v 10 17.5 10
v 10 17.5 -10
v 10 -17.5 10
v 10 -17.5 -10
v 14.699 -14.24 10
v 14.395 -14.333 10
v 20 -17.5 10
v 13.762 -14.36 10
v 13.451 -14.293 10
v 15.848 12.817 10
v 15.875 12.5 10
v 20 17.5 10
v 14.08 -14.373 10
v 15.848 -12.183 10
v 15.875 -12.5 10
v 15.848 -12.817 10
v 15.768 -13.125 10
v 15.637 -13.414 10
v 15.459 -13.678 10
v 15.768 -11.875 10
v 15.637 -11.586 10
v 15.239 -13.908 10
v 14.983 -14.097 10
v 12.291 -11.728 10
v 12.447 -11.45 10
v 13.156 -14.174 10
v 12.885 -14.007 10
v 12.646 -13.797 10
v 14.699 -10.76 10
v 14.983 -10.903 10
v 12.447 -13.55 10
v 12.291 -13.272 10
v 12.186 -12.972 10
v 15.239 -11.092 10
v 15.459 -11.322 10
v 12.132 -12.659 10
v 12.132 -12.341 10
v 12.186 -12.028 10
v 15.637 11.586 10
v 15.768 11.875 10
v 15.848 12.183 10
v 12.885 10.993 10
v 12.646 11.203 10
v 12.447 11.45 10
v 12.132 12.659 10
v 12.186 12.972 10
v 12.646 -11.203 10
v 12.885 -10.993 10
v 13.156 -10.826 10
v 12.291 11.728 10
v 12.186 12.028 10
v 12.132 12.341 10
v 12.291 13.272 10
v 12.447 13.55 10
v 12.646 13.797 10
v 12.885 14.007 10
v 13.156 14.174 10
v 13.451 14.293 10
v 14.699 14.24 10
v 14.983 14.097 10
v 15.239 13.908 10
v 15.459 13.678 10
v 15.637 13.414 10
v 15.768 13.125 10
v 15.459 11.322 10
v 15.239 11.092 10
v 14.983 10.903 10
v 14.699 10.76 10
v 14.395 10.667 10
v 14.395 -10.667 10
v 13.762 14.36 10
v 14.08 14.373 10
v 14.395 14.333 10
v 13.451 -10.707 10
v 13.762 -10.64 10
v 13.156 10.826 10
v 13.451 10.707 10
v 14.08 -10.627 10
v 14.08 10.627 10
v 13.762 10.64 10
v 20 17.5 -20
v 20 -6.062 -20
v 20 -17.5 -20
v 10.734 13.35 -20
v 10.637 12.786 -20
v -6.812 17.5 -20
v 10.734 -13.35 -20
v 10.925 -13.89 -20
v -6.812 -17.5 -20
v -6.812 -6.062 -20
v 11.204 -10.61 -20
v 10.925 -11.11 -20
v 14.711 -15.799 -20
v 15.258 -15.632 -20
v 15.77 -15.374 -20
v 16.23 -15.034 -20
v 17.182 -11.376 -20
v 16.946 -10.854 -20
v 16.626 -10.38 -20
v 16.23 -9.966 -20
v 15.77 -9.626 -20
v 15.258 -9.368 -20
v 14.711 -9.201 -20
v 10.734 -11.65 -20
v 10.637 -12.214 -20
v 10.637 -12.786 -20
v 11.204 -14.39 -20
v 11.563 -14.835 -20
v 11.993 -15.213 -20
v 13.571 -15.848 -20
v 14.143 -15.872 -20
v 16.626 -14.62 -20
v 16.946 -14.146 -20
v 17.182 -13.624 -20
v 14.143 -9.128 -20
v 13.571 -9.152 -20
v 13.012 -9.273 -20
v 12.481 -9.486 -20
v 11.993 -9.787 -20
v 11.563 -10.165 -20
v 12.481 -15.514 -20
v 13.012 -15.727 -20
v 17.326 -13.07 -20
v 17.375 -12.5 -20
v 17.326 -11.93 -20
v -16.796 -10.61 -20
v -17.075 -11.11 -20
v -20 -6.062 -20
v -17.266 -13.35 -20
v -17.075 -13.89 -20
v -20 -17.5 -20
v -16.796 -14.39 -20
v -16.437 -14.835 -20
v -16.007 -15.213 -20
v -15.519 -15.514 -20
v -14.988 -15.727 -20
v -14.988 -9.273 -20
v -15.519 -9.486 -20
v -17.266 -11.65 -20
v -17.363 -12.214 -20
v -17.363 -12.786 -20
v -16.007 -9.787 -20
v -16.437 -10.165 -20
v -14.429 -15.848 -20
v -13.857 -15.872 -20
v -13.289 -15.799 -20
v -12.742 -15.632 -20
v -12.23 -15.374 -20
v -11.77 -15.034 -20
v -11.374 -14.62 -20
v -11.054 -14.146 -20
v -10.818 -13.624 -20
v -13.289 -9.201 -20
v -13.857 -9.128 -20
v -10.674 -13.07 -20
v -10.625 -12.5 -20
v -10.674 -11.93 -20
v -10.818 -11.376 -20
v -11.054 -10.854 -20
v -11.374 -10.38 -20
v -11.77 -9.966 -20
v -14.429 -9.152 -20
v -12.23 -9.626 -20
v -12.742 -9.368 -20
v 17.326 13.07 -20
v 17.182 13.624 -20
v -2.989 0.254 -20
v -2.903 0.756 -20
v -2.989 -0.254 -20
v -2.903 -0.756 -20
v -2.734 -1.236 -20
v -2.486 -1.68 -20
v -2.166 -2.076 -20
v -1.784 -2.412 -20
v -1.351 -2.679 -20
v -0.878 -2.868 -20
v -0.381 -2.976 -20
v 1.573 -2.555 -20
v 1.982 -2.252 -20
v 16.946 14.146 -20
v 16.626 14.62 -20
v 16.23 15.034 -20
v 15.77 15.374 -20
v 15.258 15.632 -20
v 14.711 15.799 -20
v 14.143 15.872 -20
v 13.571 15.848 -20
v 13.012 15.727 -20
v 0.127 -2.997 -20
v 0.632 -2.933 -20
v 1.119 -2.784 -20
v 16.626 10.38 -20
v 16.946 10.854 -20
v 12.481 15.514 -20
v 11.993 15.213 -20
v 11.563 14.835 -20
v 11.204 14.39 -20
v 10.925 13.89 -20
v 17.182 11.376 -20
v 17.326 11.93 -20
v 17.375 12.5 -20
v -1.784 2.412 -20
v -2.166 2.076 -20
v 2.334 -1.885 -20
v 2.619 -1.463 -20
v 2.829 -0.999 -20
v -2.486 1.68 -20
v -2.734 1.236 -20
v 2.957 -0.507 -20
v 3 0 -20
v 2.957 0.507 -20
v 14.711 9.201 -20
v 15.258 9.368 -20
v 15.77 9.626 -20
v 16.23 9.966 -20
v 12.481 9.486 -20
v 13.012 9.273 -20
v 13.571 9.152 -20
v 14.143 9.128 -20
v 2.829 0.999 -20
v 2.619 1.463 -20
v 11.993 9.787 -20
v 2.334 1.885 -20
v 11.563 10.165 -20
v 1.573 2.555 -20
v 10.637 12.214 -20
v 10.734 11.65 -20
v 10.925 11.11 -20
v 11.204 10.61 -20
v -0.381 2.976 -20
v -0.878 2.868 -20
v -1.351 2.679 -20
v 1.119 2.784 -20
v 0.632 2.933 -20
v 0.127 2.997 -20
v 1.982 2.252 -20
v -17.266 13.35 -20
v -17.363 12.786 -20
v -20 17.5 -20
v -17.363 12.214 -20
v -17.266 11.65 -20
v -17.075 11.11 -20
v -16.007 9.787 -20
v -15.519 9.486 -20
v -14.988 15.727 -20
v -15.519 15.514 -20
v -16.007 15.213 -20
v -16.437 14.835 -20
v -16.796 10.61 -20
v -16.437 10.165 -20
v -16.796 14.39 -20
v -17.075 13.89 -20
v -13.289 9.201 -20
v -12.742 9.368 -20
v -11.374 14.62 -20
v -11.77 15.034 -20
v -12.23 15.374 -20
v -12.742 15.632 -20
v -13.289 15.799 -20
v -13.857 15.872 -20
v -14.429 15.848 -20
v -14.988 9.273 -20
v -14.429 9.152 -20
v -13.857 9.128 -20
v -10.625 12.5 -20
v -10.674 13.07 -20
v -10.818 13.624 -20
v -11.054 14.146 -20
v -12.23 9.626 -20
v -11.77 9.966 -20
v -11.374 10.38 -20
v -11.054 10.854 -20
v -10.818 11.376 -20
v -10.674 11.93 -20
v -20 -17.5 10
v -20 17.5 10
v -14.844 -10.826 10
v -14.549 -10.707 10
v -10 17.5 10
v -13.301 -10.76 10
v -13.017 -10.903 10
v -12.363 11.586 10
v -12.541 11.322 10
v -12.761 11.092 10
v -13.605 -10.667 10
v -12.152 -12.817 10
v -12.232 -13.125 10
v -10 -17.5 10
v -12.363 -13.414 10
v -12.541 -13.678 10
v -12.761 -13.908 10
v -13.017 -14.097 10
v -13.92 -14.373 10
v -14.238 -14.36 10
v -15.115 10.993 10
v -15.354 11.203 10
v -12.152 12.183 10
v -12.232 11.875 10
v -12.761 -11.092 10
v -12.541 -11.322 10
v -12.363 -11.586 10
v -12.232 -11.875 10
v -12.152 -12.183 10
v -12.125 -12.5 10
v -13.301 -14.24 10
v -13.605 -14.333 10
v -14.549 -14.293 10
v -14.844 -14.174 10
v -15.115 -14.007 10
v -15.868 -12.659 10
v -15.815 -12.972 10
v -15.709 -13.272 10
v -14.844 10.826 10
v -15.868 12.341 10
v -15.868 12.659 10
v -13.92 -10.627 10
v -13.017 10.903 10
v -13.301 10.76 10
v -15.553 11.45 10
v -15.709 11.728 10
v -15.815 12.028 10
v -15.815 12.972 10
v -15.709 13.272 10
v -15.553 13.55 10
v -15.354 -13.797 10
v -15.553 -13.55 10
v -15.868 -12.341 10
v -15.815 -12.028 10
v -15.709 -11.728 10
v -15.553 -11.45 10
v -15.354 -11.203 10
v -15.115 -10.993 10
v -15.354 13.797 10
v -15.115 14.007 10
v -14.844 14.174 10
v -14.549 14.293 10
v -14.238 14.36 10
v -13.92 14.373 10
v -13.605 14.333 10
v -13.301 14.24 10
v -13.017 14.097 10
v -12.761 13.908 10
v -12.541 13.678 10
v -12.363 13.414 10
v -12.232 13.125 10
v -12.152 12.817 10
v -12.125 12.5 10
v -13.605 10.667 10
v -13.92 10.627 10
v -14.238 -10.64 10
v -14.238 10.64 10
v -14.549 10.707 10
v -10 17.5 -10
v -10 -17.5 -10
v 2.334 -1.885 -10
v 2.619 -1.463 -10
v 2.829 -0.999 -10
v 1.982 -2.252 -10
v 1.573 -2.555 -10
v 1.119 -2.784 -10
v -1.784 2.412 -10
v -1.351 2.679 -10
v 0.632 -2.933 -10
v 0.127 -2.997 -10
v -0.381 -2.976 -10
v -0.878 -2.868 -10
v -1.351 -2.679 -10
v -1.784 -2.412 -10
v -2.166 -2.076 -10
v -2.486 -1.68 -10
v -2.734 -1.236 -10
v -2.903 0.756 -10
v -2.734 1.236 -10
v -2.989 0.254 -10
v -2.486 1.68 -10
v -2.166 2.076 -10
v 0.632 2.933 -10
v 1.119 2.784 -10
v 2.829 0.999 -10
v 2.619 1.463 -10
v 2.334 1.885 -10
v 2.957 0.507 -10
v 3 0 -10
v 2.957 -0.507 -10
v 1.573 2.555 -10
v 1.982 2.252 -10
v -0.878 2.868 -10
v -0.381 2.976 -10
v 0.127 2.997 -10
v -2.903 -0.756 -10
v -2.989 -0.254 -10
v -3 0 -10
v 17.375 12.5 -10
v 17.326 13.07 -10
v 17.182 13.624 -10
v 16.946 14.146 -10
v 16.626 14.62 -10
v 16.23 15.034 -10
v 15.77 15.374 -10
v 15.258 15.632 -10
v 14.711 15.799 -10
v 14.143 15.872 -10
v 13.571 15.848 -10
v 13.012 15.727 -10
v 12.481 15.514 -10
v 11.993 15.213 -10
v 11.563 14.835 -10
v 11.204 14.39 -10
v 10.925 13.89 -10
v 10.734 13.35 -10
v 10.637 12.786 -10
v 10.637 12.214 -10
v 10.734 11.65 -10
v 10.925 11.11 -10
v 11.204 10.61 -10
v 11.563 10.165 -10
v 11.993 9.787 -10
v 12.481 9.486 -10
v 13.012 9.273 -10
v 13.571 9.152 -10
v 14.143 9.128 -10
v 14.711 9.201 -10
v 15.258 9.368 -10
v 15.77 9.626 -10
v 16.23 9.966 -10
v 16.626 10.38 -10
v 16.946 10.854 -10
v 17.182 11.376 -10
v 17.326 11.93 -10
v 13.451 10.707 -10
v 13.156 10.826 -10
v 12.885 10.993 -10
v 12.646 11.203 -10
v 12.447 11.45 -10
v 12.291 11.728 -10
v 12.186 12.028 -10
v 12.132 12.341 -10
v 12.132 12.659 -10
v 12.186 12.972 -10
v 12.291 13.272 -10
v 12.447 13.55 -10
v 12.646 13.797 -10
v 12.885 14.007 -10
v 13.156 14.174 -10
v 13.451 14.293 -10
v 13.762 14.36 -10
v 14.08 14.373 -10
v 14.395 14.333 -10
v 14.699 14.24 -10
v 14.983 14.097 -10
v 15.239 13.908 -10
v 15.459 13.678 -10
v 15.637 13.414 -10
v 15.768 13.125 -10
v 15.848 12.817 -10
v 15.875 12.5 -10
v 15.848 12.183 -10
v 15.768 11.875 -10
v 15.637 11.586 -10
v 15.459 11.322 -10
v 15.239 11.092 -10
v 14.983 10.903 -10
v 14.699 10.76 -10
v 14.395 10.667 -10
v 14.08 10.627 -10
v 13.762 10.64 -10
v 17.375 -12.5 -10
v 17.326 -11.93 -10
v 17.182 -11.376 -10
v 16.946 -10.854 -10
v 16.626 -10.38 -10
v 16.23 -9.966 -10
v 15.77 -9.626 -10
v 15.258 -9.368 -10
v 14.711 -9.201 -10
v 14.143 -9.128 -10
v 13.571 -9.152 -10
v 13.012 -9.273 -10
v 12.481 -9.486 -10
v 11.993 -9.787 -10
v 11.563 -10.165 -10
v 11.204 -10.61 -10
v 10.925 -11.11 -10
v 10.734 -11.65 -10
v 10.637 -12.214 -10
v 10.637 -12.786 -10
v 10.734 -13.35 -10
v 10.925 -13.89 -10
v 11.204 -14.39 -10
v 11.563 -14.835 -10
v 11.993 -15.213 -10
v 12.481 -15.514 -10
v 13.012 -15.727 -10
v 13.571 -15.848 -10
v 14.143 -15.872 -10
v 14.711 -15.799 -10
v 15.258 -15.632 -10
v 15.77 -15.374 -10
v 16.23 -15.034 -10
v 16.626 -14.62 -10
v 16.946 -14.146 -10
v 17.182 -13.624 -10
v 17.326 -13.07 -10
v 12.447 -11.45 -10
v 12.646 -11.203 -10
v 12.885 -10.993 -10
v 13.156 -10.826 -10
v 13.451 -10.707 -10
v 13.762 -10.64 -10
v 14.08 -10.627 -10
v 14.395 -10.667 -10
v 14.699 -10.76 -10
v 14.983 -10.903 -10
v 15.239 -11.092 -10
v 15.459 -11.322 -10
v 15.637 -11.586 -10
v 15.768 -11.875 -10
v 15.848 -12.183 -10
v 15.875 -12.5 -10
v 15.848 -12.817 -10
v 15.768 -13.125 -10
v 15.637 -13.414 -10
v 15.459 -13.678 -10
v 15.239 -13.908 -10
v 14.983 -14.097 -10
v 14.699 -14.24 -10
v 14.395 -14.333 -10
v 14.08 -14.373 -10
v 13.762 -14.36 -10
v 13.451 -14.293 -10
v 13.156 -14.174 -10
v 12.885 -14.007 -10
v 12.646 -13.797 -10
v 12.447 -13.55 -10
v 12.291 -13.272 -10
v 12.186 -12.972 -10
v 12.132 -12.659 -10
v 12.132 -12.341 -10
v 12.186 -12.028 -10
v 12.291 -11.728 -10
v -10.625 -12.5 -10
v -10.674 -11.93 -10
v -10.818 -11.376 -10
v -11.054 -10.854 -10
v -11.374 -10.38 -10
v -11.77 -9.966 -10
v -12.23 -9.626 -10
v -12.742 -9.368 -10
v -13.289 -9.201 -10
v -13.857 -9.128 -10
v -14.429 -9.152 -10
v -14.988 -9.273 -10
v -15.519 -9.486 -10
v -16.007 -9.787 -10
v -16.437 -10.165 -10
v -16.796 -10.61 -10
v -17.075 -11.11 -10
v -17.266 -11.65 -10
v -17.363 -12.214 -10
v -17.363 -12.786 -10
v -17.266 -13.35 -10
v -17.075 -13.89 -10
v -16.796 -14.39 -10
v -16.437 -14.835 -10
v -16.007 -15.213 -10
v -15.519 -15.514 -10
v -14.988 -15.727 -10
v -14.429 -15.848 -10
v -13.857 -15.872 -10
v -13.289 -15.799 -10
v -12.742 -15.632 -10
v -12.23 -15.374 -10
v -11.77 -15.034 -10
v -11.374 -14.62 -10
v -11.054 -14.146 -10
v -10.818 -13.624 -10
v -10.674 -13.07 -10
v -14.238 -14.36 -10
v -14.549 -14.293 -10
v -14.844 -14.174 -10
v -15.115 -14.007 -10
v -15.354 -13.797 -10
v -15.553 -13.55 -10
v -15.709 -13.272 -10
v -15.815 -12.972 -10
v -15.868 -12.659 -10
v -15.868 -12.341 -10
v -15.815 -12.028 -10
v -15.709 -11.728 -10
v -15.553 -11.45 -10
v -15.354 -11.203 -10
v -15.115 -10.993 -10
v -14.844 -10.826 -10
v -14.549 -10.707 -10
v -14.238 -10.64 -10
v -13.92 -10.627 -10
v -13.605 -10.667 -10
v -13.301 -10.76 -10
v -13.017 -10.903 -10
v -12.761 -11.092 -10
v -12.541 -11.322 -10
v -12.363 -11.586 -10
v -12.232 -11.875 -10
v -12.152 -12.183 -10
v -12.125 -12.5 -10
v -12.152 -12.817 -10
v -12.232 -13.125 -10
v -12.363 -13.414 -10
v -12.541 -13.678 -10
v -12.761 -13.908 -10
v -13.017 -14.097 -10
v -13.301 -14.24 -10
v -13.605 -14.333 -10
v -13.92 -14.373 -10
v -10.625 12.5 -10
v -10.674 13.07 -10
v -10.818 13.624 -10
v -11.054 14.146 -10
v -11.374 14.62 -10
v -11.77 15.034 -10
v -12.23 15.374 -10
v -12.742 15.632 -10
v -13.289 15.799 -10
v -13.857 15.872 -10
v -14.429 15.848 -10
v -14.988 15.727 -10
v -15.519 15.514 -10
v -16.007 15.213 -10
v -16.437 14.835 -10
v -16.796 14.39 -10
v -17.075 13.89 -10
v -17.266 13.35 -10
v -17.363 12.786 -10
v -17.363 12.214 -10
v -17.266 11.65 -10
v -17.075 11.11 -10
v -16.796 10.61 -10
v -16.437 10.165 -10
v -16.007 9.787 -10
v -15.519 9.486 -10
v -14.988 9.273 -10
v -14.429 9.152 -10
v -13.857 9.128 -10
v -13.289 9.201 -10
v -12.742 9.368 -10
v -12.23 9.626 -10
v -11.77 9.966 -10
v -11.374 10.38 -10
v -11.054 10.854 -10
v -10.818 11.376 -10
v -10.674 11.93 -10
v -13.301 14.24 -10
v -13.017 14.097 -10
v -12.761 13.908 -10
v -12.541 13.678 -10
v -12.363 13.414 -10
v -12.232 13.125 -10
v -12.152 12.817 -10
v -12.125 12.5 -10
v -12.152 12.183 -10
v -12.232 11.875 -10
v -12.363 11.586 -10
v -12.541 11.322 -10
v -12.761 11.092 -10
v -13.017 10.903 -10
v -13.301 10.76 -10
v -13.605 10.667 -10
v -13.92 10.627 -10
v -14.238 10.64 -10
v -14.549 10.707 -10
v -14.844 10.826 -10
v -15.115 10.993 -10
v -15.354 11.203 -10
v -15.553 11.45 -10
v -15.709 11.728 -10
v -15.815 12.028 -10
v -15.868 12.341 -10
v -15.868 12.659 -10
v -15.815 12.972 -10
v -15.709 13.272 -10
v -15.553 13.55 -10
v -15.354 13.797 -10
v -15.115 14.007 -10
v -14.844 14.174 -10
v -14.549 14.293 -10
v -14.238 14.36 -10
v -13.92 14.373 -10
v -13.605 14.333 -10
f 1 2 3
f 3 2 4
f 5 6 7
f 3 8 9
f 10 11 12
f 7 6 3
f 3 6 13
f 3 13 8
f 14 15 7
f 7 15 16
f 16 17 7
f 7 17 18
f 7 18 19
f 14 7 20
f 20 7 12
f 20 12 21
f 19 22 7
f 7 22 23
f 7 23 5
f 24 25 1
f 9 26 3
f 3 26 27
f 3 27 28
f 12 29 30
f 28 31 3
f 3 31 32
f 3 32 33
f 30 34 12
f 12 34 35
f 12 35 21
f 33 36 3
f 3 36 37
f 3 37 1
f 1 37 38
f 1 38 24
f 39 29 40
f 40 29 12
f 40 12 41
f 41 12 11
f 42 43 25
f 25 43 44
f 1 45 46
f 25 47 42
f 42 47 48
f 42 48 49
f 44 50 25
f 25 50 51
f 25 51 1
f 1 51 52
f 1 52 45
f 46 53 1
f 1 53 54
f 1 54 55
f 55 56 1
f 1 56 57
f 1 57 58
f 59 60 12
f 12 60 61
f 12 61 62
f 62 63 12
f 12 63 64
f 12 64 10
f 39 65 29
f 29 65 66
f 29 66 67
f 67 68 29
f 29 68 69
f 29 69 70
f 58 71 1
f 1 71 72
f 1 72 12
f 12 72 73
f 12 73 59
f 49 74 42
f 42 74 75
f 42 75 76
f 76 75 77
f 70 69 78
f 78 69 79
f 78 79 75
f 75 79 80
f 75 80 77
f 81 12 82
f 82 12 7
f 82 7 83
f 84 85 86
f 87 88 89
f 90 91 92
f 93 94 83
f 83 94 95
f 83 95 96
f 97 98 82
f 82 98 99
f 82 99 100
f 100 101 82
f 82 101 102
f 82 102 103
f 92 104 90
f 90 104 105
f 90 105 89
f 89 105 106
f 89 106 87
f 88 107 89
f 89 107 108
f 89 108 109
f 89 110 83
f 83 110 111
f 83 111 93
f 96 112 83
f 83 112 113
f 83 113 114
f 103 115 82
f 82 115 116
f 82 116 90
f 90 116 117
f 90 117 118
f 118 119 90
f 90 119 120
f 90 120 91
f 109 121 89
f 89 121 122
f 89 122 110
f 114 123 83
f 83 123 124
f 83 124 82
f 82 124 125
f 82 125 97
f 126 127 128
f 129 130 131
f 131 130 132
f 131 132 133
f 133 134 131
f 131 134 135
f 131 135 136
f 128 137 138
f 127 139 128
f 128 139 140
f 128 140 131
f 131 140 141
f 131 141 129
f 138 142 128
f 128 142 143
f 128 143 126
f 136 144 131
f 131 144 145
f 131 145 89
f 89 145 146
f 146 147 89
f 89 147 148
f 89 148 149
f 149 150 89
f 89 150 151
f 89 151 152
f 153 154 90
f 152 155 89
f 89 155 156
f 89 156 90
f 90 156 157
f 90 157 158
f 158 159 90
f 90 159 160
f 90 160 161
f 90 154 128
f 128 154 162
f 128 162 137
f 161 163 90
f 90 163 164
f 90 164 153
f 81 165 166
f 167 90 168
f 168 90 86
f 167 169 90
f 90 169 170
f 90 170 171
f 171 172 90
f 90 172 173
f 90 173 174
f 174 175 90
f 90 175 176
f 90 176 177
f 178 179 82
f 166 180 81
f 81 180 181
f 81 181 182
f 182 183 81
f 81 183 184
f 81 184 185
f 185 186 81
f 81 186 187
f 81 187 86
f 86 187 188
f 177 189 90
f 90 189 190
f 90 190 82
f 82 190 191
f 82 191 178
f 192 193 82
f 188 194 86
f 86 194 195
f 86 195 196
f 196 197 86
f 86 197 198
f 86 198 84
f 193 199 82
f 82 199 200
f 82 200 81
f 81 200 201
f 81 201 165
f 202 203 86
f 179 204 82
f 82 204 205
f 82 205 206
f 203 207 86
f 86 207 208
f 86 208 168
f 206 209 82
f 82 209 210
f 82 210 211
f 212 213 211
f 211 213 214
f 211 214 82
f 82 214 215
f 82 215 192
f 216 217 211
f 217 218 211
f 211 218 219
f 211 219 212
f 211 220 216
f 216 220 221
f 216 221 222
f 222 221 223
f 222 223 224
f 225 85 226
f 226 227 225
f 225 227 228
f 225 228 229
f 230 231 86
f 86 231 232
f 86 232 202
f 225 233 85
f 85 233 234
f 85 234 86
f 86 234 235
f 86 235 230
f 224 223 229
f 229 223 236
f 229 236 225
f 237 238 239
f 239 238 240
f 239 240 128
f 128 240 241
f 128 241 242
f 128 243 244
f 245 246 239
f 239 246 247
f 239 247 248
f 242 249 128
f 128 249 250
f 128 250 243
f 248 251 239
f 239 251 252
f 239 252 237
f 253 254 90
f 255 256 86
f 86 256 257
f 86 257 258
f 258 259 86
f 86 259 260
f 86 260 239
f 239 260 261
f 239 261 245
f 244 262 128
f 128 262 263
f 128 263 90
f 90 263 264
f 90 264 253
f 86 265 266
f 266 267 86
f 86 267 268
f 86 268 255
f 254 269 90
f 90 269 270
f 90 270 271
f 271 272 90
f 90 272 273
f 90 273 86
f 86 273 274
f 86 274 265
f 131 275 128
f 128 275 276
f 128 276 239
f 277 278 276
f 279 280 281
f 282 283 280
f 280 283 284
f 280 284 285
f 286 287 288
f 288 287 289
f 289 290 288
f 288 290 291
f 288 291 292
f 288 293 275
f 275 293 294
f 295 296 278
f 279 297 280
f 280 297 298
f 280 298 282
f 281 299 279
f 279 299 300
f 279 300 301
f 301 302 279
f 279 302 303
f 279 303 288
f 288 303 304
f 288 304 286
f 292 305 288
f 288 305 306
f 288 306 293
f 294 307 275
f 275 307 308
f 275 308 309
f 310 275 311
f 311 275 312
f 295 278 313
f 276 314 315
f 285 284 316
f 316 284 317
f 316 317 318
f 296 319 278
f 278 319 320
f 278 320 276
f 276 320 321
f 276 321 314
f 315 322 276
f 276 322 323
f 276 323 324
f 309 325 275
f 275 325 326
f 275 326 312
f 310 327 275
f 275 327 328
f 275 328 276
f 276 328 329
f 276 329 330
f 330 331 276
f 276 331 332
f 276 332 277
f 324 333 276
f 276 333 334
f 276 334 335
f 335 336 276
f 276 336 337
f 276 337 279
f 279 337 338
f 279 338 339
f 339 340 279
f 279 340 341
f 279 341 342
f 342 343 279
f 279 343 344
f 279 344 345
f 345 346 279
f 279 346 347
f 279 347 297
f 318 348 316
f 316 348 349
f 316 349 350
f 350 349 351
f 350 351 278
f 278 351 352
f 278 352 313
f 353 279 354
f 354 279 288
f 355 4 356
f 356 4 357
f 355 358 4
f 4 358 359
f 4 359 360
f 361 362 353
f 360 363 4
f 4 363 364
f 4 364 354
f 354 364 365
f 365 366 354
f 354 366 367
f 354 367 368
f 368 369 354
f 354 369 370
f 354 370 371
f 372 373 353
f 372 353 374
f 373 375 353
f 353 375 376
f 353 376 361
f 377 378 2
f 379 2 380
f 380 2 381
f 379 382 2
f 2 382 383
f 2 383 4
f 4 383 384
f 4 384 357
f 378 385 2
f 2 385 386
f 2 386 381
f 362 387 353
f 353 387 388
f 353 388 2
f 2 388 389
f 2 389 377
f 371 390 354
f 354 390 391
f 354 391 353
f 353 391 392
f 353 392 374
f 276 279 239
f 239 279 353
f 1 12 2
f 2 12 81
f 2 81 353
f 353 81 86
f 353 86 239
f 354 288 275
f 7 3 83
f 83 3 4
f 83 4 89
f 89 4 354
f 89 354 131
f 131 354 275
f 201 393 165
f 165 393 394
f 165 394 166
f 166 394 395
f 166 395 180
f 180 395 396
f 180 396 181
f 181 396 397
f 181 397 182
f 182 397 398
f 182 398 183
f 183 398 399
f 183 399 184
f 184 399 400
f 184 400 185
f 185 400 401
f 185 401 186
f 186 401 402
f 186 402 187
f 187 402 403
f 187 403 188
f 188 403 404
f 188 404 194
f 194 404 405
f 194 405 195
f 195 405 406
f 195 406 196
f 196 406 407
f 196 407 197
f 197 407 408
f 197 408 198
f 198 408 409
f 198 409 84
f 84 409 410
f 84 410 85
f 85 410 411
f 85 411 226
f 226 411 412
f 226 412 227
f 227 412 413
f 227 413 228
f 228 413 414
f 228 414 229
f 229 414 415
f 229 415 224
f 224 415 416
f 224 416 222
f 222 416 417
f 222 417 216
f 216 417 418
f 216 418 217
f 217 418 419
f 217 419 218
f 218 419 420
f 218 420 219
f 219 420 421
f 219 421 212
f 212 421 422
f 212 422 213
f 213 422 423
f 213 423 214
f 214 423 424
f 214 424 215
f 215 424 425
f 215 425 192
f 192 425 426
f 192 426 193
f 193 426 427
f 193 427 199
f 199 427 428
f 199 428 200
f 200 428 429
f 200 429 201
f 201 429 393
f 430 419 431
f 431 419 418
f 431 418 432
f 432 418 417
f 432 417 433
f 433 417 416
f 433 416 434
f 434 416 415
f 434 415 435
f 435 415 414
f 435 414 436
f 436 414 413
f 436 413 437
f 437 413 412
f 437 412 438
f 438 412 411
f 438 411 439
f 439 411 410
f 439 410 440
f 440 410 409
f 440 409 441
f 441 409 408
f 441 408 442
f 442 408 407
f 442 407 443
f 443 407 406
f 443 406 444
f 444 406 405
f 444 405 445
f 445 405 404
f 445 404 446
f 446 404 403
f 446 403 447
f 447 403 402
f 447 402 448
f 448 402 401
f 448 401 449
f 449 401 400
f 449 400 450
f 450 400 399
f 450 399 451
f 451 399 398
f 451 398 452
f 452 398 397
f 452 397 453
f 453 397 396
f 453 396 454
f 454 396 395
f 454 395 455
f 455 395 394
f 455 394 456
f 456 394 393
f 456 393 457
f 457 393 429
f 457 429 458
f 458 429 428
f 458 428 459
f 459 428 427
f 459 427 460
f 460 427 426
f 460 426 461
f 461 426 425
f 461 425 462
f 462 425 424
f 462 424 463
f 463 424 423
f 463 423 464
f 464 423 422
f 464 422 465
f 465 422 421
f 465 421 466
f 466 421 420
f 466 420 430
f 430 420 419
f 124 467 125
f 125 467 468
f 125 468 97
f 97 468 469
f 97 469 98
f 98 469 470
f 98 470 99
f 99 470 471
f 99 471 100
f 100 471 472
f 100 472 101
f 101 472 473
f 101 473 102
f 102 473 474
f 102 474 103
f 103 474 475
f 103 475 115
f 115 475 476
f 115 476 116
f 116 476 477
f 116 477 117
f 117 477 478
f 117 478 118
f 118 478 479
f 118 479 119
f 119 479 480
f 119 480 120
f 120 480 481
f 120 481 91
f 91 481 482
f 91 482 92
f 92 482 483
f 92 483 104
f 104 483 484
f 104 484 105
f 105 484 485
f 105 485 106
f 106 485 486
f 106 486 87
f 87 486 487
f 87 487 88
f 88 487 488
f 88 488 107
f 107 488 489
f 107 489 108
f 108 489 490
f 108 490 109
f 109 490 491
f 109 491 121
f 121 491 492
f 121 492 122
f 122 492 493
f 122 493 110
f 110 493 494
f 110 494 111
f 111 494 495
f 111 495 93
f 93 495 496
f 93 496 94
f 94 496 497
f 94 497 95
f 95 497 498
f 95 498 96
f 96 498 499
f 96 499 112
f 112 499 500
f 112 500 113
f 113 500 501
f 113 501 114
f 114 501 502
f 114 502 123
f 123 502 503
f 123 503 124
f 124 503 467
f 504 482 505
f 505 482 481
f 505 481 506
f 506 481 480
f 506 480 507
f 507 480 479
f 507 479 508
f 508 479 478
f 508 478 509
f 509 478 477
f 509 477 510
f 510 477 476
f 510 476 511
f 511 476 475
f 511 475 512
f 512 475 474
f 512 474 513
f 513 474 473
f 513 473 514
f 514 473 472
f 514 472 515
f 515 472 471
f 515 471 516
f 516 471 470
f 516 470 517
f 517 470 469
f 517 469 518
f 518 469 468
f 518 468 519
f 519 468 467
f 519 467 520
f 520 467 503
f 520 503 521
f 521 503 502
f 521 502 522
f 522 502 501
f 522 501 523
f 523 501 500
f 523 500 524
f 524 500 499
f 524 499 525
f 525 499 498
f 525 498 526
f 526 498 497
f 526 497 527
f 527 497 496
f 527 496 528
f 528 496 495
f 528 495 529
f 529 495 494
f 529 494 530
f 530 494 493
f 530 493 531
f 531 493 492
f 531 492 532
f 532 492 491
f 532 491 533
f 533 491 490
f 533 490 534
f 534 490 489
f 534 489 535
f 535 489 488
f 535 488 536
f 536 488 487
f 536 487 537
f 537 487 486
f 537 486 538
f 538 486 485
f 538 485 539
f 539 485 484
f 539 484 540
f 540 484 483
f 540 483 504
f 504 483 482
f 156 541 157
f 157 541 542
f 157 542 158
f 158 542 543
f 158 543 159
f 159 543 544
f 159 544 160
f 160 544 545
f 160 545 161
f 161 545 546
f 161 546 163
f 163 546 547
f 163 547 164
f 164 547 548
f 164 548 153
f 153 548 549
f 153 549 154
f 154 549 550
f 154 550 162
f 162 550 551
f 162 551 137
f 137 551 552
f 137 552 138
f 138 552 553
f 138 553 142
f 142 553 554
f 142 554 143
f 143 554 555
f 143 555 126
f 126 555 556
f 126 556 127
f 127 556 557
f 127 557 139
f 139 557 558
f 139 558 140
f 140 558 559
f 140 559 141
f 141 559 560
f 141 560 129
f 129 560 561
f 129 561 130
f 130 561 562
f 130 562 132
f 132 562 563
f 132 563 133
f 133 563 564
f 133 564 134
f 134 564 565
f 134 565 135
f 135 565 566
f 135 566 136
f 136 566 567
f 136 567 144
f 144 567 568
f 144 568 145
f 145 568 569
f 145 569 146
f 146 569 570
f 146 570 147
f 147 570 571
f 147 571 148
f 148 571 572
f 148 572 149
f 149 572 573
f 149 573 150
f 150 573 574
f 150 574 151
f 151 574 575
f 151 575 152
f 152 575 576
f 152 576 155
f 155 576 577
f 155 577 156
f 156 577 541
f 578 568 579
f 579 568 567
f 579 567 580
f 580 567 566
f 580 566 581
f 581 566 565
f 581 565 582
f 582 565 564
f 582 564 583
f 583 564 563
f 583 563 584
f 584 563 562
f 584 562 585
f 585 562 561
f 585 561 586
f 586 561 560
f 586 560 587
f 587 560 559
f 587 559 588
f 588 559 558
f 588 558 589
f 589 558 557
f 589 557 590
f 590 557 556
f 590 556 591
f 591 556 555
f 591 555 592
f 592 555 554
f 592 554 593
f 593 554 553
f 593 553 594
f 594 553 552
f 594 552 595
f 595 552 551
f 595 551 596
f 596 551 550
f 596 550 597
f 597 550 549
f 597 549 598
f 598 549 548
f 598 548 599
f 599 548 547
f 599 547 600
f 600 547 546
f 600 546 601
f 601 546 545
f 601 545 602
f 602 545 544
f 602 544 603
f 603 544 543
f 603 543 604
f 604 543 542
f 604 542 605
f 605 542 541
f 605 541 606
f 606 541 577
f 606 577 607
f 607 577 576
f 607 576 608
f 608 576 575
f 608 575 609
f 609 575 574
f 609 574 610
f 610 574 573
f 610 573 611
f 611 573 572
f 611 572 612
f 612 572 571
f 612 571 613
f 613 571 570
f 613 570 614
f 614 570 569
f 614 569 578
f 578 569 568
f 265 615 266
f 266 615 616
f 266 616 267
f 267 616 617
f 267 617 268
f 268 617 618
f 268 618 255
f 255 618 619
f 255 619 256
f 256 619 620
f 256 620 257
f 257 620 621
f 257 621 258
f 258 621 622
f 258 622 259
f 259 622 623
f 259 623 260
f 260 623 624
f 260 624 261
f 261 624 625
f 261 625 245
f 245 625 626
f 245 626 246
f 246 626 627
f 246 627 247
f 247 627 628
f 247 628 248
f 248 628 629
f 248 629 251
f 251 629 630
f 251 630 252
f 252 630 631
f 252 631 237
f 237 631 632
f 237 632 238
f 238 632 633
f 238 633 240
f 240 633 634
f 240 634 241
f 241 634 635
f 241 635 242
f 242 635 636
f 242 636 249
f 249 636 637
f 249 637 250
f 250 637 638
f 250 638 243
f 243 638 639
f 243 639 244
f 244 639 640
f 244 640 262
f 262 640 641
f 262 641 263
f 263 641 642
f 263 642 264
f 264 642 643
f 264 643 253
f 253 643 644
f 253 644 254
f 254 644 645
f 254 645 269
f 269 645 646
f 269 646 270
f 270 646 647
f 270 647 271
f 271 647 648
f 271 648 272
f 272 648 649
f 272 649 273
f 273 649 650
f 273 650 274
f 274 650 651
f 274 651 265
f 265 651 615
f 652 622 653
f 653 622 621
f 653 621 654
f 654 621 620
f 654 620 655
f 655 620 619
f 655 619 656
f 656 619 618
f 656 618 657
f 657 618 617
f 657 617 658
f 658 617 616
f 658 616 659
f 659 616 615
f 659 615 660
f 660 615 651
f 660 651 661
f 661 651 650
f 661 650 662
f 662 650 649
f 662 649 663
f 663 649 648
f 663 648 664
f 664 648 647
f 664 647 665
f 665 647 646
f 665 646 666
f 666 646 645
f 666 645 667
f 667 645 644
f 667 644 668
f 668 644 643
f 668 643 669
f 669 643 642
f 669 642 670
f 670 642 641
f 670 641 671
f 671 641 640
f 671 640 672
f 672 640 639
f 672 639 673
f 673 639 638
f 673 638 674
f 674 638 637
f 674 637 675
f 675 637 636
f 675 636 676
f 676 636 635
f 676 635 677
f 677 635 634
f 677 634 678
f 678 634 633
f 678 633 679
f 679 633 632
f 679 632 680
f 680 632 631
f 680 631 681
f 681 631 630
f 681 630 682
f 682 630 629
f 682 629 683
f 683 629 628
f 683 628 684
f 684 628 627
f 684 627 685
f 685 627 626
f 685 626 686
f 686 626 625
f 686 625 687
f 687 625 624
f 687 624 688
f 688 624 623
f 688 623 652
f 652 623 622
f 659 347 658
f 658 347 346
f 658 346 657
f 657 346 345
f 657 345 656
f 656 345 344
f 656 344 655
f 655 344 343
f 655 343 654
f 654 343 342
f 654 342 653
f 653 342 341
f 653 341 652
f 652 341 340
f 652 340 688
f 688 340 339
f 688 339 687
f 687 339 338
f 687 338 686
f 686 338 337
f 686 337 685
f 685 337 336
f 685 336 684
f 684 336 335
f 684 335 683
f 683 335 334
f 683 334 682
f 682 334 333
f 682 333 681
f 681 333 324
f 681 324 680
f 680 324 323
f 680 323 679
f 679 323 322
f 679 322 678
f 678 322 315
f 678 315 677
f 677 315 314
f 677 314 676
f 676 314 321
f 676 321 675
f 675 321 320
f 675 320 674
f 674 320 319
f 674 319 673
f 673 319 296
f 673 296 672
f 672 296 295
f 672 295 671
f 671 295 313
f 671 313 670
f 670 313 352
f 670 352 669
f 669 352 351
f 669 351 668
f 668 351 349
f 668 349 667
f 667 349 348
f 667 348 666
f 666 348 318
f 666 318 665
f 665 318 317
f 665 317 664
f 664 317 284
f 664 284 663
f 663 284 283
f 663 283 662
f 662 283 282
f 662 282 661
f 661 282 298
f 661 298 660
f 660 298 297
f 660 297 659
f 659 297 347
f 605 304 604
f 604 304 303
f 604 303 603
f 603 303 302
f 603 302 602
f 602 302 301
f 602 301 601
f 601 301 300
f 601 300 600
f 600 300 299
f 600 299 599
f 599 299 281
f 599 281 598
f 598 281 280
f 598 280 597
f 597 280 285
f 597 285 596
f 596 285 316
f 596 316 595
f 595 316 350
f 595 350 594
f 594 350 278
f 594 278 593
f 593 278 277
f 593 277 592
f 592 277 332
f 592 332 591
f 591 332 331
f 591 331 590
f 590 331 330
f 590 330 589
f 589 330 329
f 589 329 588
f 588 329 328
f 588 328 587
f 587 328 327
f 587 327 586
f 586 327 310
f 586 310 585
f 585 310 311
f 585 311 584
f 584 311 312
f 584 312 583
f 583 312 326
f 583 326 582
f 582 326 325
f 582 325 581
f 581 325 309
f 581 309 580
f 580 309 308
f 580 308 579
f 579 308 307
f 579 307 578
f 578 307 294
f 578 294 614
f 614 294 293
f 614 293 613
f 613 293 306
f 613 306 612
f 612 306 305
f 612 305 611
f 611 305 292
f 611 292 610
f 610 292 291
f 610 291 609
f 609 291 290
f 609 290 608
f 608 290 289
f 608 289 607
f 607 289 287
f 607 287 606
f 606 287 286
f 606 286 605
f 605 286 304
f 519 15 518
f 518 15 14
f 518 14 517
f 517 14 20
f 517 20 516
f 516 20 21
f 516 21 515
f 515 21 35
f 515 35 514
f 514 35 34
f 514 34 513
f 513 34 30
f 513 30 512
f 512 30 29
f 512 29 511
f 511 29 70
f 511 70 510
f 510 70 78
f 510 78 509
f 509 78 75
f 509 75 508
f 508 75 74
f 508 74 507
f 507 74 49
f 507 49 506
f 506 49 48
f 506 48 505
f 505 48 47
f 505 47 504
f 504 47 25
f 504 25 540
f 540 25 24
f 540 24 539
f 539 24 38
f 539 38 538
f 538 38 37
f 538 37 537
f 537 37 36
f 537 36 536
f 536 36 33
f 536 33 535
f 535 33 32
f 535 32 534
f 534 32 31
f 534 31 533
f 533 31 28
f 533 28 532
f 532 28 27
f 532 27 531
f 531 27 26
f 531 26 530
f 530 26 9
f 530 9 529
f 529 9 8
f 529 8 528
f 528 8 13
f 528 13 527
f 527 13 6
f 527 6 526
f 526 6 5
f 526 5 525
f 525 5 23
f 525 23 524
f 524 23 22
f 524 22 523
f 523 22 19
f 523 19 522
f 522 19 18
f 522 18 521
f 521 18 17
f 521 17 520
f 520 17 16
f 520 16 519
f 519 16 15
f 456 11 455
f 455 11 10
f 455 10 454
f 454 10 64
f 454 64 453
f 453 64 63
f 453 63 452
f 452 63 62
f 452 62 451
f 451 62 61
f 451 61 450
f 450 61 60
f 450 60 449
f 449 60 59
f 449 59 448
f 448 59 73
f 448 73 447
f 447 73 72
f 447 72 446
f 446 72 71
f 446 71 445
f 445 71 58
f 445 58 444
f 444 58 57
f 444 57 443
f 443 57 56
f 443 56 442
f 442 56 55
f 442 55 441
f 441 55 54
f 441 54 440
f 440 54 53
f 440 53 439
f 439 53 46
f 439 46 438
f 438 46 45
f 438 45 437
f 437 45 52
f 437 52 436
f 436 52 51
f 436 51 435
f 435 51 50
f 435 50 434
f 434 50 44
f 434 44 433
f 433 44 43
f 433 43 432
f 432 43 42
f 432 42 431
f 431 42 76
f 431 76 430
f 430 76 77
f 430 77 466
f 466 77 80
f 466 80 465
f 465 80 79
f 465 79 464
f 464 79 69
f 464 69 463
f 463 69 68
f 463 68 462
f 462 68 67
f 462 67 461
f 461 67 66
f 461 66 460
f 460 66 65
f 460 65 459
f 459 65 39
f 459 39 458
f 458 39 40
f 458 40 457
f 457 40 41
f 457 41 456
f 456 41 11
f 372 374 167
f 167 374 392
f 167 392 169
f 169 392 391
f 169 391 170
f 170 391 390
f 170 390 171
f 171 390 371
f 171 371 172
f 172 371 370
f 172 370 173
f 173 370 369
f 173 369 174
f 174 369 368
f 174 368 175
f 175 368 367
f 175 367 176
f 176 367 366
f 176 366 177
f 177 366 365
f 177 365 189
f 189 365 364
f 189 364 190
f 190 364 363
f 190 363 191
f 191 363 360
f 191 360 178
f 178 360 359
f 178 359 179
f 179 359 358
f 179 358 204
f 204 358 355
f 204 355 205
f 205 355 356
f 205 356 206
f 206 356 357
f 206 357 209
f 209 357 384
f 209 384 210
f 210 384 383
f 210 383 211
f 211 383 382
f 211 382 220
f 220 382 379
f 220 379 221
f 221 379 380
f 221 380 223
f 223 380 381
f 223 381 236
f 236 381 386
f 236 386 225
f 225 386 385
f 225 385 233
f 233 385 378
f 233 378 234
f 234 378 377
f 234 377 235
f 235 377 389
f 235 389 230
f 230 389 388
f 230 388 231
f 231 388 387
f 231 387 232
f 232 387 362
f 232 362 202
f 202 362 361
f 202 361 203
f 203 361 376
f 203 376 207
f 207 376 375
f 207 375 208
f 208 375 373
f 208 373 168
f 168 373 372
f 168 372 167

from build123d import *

# Parameters (mm, degrees)
BOSS_EXTRUDE1_DEPTH     = 17.5
CUT_EXTRUDE1_DEPTH      = 10
CUT_EXTRUDE1_DEPTH_BACK = 34.260336739
CUT_EXTRUDE1_START      = -20
SKETCH3_R               = 3.375
SKETCH3_R_2             = 1.875
CUT_EXTRUDE6_DEPTH      = 34.260336739
CUT_EXTRUDE6_DEPTH_BACK = 34.260336739
SKETCH3_4_R             = 1.875
SKETCH3_4_R_2           = 3


with BuildPart() as part:
    # Sketch1 → Boss-Extrude1 (new, symmetric)
    with BuildSketch(Plane(origin=(0, 0, 0), x_dir=(1, 0, 0), z_dir=(0, 1, 0))):
        Polygon((-20, 20), (20, 20), (20, -10), (10, -10), (10, 10), (-10, 10), (-10, -10), (-20, -10), align=None)
    extrude(amount=BOSS_EXTRUDE1_DEPTH, both=True)

    # Sketch3 → Cut-Extrude1 (cut, two sides: drawn at the far end of the back side and taken through both)
    # profile 1 of 4: a face of its own
    with BuildSketch(Plane.XY.offset(CUT_EXTRUDE1_START - CUT_EXTRUDE1_DEPTH_BACK)):
        with Locations((-14, 12.5)):
            Circle(SKETCH3_R)
        with Locations((-14, 12.5)):
            Circle(SKETCH3_R_2, mode=Mode.SUBTRACT)
    # profile 2 of 4: a face of its own
    with BuildSketch(Plane.XY.offset(CUT_EXTRUDE1_START - CUT_EXTRUDE1_DEPTH_BACK)):
        with Locations((14, 12.5)):
            Circle(SKETCH3_R)
        with Locations((14, 12.5)):
            Circle(SKETCH3_R_2, mode=Mode.SUBTRACT)
    # profile 3 of 4: a face of its own
    with BuildSketch(Plane.XY.offset(CUT_EXTRUDE1_START - CUT_EXTRUDE1_DEPTH_BACK)):
        with Locations((14, -12.5)):
            Circle(SKETCH3_R)
        with Locations((14, -12.5)):
            Circle(SKETCH3_R_2, mode=Mode.SUBTRACT)
    # profile 4 of 4: a face of its own
    with BuildSketch(Plane.XY.offset(CUT_EXTRUDE1_START - CUT_EXTRUDE1_DEPTH_BACK)):
        with Locations((-14, -12.5)):
            Circle(SKETCH3_R)
        with Locations((-14, -12.5)):
            Circle(SKETCH3_R_2, mode=Mode.SUBTRACT)
    extrude(amount=CUT_EXTRUDE1_DEPTH + CUT_EXTRUDE1_DEPTH_BACK, mode=Mode.SUBTRACT)

    # Sketch3<4> → Cut-Extrude6 (cut, two sides: drawn at the far end of the back side and taken through both)
    with BuildSketch(Plane.XY.offset(-CUT_EXTRUDE6_DEPTH_BACK)):
        with Locations((-14, 12.5)):
            Circle(SKETCH3_4_R)
        with Locations((-14, -12.5)):
            Circle(SKETCH3_4_R)
        with Locations((14, -12.5)):
            Circle(SKETCH3_4_R)
        with Locations((14, 12.5)):
            Circle(SKETCH3_4_R)
        Circle(SKETCH3_4_R_2)
    extrude(amount=CUT_EXTRUDE6_DEPTH + CUT_EXTRUDE6_DEPTH_BACK, mode=Mode.SUBTRACT)


solid = part.part
